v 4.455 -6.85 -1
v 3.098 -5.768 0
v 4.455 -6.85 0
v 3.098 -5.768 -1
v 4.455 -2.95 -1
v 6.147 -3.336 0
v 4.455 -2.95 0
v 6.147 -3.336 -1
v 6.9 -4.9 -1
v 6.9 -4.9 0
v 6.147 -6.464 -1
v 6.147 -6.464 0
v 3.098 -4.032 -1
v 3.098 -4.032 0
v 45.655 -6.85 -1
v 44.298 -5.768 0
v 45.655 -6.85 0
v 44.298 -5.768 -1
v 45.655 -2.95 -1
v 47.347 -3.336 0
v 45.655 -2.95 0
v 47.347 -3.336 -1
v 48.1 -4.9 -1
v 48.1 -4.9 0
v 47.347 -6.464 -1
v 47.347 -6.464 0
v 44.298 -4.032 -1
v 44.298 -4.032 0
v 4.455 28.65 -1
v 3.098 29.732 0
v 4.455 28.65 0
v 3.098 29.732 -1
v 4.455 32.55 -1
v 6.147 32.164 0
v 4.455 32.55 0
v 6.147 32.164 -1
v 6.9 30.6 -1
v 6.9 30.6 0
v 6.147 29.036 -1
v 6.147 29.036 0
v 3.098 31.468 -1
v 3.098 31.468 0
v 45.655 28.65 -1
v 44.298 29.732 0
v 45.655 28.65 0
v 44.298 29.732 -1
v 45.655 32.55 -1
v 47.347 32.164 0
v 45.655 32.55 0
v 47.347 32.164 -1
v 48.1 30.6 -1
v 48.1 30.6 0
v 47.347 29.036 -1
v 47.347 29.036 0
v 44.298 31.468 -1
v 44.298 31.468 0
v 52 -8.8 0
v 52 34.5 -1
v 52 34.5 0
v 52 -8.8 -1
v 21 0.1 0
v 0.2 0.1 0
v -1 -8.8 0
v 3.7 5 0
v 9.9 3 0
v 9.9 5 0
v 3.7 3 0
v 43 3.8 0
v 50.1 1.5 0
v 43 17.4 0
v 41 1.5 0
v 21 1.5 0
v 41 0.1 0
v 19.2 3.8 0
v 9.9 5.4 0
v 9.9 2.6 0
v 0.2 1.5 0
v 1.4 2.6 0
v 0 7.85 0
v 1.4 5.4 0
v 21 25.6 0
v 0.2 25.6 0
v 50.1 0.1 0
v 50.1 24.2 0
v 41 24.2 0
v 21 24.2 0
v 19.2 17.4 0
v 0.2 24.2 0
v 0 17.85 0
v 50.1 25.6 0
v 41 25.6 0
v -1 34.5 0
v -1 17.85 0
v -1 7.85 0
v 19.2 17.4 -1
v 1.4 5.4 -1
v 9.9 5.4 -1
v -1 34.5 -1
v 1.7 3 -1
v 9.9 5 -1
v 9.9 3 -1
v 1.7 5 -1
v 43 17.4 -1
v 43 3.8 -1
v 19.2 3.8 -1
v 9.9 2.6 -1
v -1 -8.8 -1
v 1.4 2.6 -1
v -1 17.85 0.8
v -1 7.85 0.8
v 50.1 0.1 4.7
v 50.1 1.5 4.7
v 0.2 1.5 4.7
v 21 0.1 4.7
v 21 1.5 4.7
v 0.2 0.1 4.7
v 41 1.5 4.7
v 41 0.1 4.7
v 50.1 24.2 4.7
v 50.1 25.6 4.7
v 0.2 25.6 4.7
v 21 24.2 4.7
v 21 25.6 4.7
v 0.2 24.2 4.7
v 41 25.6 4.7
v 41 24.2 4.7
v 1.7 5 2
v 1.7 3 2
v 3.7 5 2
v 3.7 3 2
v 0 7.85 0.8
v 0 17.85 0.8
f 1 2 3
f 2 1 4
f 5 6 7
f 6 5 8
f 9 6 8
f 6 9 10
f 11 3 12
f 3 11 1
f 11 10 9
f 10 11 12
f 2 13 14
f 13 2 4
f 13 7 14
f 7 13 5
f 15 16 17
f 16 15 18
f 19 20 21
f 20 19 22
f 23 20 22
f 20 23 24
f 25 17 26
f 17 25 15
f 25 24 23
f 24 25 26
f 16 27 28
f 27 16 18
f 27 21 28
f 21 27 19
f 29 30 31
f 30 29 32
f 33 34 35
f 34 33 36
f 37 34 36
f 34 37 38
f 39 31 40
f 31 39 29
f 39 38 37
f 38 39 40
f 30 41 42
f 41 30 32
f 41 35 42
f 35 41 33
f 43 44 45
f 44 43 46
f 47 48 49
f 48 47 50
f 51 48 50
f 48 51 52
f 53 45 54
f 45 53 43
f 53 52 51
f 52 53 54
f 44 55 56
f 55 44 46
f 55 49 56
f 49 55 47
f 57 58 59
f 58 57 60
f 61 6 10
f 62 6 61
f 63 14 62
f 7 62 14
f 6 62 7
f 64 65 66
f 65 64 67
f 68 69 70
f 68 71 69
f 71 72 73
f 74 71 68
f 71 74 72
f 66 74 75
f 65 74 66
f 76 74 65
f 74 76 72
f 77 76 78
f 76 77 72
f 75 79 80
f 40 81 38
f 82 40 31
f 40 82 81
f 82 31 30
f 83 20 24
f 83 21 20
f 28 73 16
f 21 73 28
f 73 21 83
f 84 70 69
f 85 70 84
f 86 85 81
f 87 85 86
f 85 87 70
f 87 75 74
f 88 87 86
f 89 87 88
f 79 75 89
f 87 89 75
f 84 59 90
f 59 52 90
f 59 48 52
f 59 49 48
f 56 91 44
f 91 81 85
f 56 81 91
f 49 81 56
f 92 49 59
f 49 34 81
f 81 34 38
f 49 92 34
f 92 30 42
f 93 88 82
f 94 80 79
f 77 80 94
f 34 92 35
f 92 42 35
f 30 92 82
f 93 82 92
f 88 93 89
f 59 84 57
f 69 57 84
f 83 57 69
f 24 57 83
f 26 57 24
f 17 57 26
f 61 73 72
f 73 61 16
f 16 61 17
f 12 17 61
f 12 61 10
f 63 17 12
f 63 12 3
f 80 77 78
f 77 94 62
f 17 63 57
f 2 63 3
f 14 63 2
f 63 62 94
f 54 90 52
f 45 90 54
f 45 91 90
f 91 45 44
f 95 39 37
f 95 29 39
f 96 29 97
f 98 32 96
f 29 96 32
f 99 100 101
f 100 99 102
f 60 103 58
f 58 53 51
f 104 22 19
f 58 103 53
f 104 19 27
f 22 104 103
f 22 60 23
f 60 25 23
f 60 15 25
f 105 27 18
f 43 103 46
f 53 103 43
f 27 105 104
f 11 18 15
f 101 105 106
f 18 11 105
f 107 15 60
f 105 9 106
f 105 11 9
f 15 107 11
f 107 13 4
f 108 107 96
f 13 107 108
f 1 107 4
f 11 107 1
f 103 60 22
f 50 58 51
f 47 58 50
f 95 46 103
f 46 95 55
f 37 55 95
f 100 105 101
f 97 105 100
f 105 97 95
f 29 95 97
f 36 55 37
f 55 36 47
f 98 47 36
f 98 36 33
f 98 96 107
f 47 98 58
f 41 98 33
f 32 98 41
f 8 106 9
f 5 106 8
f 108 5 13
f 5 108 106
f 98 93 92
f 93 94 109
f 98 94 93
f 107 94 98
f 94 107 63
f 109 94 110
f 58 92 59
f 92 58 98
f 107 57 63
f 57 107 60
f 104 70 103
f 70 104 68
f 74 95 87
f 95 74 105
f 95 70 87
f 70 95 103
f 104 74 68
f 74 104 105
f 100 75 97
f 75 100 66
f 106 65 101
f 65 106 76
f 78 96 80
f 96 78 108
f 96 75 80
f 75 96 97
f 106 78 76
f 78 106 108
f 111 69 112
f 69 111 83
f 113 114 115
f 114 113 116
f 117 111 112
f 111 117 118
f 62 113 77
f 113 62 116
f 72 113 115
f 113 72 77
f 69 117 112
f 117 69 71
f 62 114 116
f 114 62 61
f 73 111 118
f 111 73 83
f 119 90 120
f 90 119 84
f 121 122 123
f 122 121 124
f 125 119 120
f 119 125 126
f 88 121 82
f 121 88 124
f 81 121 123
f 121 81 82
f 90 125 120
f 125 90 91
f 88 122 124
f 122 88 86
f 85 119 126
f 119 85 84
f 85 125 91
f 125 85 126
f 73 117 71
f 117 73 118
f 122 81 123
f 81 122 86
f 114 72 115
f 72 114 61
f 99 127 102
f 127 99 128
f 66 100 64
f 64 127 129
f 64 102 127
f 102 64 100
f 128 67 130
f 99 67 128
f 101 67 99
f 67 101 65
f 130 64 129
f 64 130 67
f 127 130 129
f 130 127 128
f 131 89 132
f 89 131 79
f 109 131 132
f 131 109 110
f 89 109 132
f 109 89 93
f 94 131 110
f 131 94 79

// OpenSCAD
wall_thickness=1;
case_depth=3.5+3.7+1.5+wall_thickness+1;
pcb_length=50.3; // Originally 51
case_width=51;

insert_height=case_depth-1.5-3.7-0.8;




// Related to the "nut slot" posts
nut_width = 5.5;
nut_height = 2.5;
nut_post_width = nut_width + 2.3;
nut_hole_height = nut_height + 1.2;
nut_hole_width = nut_width + 0.4;

nut_hole_depth = (nut_post_width-nut_width)/2 + nut_width;
riser_height = wall_thickness*2;

module make_nut_posts() {
        translate([nut_post_width/2+(wall_thickness*2),nut_post_width/2,-wall_thickness-0.1-riser_height]) cylinder(r=2, h=case_depth+wall_thickness*2+riser_height*2);
        translate([case_width-(nut_post_width/2+(wall_thickness*2))+2,nut_post_width/2,-wall_thickness-0.1-riser_height]) cylinder(r=2, h=case_depth+wall_thickness*2+riser_height*2);
}


difference() {    
    // The actual case lid (will need to carve out LCD hole)
    translate([-wall_thickness, -wall_thickness-nut_post_width, -wall_thickness]) cube([case_width+2*wall_thickness, 25.7+2*wall_thickness+nut_post_width*2, wall_thickness]);

    // The LCD hole
    translate([19.2, 3.8, -wall_thickness-0.1]) cube([23.8,13.6,wall_thickness*2]);
    
    // The button cutout
    #translate([1.4,2.6,-wall_thickness-0.1]) cube([8.5,2.8,wall_thickness*2]);

    translate([-wall_thickness,-nut_post_width-wall_thickness,0]) make_nut_posts();
    translate([-wall_thickness,25.7+wall_thickness,0]) make_nut_posts();

}


// Insert panels ("walls")
difference() {
    make_walls();
    translate([19+2,0,0]) cube([20, 25.7+3*wall_thickness, insert_height+1]);

}
// MicroUSB Port Notch
translate([-wall_thickness, (25.7-10)/2, 0]) cube([wall_thickness, 10, 0.8]);


translate([1.7,3,0]) {
    translate([0,0,-wall_thickness]) cube([8.6,2,wall_thickness]);
    cube([2,2,2]);
}


module make_walls() {
    {
        translate([0.2,0.1,0]) cube([pcb_length-0.4,1.4,insert_height]);
        translate([0.2,25.7-1.4-0.1,0]) cube([pcb_length-0.4,1.4,insert_height]);
    }
}
